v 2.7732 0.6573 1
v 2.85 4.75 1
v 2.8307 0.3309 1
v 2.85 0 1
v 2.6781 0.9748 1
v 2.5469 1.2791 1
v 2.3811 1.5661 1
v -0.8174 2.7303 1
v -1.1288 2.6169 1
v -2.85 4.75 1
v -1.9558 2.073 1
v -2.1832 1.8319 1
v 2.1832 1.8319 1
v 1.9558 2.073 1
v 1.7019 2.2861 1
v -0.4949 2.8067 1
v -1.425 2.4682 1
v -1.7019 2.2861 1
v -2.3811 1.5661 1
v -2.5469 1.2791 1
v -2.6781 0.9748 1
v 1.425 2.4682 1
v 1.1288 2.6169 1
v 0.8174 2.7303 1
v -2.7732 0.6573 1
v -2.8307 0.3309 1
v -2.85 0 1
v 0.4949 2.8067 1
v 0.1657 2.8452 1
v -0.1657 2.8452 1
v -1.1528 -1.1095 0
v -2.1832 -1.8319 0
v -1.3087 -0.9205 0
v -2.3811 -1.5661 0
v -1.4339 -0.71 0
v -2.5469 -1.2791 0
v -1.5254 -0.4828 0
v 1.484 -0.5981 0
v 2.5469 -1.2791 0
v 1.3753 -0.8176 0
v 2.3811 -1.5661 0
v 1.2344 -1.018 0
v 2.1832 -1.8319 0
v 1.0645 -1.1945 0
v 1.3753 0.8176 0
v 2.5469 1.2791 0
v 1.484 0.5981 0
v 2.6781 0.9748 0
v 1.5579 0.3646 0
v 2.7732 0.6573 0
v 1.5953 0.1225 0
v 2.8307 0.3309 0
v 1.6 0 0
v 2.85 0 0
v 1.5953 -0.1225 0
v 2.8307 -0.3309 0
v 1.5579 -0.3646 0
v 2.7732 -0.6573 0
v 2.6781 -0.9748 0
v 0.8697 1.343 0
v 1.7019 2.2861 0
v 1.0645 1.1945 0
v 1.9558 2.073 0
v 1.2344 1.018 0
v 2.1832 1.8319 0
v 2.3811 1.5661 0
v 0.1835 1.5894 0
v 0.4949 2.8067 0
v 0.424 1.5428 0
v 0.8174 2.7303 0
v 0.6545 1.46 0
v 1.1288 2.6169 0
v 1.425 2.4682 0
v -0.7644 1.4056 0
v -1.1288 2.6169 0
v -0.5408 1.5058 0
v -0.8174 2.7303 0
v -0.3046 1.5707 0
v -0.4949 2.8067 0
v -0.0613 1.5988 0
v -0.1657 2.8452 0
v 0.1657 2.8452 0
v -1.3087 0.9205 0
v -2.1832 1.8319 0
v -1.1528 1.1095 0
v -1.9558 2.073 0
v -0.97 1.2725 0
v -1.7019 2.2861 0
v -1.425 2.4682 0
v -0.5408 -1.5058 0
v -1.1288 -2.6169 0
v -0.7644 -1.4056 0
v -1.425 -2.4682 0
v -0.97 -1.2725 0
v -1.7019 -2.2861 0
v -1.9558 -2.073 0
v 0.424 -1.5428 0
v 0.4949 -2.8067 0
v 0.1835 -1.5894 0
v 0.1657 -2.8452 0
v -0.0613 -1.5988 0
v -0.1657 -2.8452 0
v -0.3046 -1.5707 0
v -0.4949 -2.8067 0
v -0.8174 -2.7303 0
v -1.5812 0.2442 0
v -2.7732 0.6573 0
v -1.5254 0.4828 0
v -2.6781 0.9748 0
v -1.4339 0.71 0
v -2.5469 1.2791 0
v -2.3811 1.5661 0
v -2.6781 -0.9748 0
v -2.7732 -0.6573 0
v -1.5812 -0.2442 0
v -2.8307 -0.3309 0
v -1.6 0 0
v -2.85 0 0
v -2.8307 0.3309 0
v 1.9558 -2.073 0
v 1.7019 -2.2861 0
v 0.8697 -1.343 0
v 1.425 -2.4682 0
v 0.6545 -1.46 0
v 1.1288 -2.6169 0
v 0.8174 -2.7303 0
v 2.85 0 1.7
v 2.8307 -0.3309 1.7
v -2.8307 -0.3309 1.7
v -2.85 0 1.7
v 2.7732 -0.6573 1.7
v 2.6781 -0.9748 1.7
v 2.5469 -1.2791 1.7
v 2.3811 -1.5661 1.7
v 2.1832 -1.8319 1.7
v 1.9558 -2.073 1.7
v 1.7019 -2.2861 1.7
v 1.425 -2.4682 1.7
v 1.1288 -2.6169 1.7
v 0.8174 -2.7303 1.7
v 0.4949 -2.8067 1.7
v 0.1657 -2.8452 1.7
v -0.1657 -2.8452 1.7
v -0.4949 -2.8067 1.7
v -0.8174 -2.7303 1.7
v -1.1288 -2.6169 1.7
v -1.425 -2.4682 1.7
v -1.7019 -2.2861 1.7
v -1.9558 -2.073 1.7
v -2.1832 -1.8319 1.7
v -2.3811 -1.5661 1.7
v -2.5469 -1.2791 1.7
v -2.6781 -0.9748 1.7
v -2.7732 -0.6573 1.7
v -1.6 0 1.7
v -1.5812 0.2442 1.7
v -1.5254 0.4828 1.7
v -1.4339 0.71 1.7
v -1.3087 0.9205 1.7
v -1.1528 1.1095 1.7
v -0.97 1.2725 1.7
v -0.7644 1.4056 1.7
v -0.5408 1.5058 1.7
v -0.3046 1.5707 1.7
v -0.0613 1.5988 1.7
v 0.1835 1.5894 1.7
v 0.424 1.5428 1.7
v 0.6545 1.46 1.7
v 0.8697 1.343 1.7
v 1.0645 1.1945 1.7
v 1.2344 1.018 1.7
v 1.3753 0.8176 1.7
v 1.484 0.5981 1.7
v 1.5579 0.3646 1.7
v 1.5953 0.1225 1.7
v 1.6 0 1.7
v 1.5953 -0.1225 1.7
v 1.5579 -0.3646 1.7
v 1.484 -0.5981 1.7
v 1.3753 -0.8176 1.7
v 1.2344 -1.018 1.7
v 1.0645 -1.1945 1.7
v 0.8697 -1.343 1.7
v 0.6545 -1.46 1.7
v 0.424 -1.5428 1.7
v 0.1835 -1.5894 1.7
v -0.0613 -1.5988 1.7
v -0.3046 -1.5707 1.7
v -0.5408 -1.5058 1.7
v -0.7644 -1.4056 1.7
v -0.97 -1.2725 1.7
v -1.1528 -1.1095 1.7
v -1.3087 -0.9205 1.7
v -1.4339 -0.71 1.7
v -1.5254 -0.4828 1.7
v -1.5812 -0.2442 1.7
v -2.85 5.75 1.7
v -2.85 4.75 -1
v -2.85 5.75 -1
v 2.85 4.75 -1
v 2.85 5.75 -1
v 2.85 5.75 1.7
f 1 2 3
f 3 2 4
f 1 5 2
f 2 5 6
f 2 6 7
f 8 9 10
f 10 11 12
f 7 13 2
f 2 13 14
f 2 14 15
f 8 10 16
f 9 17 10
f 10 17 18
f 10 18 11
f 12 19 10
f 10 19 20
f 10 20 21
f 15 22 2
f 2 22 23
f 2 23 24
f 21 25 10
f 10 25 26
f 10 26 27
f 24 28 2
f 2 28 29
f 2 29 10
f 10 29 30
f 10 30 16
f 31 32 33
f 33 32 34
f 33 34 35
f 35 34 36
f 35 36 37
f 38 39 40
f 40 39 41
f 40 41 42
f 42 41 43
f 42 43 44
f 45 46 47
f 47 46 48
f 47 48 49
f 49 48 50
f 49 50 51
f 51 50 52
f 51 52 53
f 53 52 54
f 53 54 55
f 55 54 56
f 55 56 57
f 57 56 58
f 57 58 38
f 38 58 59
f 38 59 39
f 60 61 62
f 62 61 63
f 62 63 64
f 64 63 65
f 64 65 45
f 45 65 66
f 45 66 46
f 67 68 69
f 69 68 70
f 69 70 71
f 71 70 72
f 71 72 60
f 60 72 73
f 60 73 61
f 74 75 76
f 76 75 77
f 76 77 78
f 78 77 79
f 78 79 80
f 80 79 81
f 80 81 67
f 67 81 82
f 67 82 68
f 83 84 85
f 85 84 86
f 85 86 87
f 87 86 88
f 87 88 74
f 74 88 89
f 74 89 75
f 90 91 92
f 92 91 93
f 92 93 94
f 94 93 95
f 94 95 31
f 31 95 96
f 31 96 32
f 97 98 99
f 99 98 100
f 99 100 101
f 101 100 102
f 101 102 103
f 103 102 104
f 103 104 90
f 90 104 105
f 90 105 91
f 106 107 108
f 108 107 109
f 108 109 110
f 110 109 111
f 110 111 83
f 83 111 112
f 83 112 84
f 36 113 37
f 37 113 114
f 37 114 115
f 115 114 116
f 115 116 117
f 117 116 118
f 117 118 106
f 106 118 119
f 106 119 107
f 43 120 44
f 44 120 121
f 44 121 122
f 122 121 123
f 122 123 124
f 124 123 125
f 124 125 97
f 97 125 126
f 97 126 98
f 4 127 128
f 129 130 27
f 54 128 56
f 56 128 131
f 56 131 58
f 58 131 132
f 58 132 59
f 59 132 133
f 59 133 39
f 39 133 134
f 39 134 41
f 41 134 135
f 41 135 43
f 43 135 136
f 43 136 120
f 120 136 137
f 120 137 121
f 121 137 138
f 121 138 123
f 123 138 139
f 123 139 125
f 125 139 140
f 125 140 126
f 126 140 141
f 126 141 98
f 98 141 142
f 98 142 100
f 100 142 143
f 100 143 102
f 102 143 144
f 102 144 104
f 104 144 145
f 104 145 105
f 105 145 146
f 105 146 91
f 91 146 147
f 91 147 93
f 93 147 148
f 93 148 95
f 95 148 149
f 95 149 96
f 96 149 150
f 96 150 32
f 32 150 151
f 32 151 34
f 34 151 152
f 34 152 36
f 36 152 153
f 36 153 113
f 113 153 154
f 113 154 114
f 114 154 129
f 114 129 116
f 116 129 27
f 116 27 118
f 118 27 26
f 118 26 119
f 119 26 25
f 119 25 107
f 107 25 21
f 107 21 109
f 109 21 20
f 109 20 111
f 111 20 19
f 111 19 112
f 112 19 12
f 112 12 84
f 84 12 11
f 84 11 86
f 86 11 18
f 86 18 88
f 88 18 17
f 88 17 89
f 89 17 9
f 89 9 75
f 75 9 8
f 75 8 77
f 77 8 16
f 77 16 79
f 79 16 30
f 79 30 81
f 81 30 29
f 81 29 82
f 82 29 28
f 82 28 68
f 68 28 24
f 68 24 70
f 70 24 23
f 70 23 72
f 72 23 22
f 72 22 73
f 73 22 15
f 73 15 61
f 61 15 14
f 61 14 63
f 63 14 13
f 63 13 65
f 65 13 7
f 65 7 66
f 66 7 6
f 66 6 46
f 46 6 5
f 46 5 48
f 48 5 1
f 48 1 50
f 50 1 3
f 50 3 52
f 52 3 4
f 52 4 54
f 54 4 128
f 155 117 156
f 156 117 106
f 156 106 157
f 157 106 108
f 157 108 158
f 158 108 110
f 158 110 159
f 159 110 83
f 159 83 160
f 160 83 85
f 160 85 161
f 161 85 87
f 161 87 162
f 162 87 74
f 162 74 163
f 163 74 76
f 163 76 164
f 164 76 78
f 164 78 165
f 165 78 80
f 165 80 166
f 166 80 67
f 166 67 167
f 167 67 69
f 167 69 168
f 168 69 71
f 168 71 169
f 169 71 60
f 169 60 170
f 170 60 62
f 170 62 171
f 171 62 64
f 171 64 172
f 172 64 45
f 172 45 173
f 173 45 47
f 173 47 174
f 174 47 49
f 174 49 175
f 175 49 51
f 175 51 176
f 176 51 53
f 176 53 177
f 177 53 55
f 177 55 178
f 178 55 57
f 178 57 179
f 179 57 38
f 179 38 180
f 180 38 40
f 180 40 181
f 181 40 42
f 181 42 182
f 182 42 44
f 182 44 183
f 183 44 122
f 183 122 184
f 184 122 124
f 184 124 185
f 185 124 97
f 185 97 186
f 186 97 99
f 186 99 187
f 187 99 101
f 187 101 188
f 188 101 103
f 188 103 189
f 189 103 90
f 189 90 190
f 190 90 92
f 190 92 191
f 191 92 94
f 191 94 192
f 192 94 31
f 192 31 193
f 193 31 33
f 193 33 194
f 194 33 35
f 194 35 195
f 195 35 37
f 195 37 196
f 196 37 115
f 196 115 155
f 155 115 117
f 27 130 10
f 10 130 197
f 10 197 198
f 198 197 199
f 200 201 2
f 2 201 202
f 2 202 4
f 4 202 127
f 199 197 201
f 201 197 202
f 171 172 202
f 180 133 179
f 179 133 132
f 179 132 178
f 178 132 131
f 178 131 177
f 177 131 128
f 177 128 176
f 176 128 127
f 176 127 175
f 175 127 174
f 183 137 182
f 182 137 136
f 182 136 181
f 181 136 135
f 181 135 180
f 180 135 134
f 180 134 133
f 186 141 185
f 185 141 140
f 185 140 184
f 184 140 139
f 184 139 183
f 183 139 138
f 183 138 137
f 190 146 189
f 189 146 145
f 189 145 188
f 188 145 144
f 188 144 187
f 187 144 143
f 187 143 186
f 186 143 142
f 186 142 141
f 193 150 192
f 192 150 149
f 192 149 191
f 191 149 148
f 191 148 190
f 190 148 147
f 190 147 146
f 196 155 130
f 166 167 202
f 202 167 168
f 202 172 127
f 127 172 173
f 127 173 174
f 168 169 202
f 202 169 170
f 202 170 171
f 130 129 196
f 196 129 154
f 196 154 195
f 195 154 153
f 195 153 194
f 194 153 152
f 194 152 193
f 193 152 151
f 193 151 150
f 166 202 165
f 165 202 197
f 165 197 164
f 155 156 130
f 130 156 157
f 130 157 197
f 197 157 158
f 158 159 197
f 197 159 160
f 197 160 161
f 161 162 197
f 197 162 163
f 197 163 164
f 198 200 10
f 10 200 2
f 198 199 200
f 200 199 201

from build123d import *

# Parameters (mm, degrees)
SZKIC1_R                    = 2.85
SZKIC1_R_2                  = 1.6
DODANIE_WYCI_GNI_CIE1_DEPTH = 1
DODANIE_WYCI_GNI_CIE2_DEPTH = 0.7
SZKIC3_W                    = 5.7
SZKIC3_H                    = 1
DODANIE_WYCI_GNI_CIE3_DEPTH = 2


with BuildPart() as part:
    # Szkic1 → Dodanie-wyciągnięcie1 (new body)
    with BuildSketch(Plane.XY):
        Circle(SZKIC1_R)
        Circle(SZKIC1_R_2, mode=Mode.SUBTRACT)
    extrude(amount=DODANIE_WYCI_GNI_CIE1_DEPTH)

    # Szkic2 → Dodanie-wyciągnięcie2 (add)
    with BuildSketch(Plane.XY.offset(1)):
        with BuildLine():
            Line((2.85, 5.75), (0, 5.75))
            Line((0, 5.75), (-2.85, 5.75))
            Line((-2.85, 5.75), (-2.85, 0))
            ThreePointArc((-2.85, 0), (0, -2.85), (2.85, 0))
            Line((2.85, 0), (2.85, 5.75))
        make_face()
        with BuildLine():
            ThreePointArc((1.6, 0), (-1.13137085, -1.13137085), (0, 1.6))
            ThreePointArc((0, 1.6), (1.13137085, 1.13137085), (1.6, 0))
        make_face(mode=Mode.SUBTRACT)
    extrude(amount=DODANIE_WYCI_GNI_CIE2_DEPTH)

    # Szkic3 → Dodanie-wyciągnięcie3 (add)
    with BuildSketch(Plane(origin=(0, 0, 1), x_dir=(-1, 0, 0), z_dir=(0, 0, -1))):
        with Locations((0, 5.25)):
            Rectangle(SZKIC3_W, SZKIC3_H)
    extrude(amount=DODANIE_WYCI_GNI_CIE3_DEPTH)


solid = part.part
